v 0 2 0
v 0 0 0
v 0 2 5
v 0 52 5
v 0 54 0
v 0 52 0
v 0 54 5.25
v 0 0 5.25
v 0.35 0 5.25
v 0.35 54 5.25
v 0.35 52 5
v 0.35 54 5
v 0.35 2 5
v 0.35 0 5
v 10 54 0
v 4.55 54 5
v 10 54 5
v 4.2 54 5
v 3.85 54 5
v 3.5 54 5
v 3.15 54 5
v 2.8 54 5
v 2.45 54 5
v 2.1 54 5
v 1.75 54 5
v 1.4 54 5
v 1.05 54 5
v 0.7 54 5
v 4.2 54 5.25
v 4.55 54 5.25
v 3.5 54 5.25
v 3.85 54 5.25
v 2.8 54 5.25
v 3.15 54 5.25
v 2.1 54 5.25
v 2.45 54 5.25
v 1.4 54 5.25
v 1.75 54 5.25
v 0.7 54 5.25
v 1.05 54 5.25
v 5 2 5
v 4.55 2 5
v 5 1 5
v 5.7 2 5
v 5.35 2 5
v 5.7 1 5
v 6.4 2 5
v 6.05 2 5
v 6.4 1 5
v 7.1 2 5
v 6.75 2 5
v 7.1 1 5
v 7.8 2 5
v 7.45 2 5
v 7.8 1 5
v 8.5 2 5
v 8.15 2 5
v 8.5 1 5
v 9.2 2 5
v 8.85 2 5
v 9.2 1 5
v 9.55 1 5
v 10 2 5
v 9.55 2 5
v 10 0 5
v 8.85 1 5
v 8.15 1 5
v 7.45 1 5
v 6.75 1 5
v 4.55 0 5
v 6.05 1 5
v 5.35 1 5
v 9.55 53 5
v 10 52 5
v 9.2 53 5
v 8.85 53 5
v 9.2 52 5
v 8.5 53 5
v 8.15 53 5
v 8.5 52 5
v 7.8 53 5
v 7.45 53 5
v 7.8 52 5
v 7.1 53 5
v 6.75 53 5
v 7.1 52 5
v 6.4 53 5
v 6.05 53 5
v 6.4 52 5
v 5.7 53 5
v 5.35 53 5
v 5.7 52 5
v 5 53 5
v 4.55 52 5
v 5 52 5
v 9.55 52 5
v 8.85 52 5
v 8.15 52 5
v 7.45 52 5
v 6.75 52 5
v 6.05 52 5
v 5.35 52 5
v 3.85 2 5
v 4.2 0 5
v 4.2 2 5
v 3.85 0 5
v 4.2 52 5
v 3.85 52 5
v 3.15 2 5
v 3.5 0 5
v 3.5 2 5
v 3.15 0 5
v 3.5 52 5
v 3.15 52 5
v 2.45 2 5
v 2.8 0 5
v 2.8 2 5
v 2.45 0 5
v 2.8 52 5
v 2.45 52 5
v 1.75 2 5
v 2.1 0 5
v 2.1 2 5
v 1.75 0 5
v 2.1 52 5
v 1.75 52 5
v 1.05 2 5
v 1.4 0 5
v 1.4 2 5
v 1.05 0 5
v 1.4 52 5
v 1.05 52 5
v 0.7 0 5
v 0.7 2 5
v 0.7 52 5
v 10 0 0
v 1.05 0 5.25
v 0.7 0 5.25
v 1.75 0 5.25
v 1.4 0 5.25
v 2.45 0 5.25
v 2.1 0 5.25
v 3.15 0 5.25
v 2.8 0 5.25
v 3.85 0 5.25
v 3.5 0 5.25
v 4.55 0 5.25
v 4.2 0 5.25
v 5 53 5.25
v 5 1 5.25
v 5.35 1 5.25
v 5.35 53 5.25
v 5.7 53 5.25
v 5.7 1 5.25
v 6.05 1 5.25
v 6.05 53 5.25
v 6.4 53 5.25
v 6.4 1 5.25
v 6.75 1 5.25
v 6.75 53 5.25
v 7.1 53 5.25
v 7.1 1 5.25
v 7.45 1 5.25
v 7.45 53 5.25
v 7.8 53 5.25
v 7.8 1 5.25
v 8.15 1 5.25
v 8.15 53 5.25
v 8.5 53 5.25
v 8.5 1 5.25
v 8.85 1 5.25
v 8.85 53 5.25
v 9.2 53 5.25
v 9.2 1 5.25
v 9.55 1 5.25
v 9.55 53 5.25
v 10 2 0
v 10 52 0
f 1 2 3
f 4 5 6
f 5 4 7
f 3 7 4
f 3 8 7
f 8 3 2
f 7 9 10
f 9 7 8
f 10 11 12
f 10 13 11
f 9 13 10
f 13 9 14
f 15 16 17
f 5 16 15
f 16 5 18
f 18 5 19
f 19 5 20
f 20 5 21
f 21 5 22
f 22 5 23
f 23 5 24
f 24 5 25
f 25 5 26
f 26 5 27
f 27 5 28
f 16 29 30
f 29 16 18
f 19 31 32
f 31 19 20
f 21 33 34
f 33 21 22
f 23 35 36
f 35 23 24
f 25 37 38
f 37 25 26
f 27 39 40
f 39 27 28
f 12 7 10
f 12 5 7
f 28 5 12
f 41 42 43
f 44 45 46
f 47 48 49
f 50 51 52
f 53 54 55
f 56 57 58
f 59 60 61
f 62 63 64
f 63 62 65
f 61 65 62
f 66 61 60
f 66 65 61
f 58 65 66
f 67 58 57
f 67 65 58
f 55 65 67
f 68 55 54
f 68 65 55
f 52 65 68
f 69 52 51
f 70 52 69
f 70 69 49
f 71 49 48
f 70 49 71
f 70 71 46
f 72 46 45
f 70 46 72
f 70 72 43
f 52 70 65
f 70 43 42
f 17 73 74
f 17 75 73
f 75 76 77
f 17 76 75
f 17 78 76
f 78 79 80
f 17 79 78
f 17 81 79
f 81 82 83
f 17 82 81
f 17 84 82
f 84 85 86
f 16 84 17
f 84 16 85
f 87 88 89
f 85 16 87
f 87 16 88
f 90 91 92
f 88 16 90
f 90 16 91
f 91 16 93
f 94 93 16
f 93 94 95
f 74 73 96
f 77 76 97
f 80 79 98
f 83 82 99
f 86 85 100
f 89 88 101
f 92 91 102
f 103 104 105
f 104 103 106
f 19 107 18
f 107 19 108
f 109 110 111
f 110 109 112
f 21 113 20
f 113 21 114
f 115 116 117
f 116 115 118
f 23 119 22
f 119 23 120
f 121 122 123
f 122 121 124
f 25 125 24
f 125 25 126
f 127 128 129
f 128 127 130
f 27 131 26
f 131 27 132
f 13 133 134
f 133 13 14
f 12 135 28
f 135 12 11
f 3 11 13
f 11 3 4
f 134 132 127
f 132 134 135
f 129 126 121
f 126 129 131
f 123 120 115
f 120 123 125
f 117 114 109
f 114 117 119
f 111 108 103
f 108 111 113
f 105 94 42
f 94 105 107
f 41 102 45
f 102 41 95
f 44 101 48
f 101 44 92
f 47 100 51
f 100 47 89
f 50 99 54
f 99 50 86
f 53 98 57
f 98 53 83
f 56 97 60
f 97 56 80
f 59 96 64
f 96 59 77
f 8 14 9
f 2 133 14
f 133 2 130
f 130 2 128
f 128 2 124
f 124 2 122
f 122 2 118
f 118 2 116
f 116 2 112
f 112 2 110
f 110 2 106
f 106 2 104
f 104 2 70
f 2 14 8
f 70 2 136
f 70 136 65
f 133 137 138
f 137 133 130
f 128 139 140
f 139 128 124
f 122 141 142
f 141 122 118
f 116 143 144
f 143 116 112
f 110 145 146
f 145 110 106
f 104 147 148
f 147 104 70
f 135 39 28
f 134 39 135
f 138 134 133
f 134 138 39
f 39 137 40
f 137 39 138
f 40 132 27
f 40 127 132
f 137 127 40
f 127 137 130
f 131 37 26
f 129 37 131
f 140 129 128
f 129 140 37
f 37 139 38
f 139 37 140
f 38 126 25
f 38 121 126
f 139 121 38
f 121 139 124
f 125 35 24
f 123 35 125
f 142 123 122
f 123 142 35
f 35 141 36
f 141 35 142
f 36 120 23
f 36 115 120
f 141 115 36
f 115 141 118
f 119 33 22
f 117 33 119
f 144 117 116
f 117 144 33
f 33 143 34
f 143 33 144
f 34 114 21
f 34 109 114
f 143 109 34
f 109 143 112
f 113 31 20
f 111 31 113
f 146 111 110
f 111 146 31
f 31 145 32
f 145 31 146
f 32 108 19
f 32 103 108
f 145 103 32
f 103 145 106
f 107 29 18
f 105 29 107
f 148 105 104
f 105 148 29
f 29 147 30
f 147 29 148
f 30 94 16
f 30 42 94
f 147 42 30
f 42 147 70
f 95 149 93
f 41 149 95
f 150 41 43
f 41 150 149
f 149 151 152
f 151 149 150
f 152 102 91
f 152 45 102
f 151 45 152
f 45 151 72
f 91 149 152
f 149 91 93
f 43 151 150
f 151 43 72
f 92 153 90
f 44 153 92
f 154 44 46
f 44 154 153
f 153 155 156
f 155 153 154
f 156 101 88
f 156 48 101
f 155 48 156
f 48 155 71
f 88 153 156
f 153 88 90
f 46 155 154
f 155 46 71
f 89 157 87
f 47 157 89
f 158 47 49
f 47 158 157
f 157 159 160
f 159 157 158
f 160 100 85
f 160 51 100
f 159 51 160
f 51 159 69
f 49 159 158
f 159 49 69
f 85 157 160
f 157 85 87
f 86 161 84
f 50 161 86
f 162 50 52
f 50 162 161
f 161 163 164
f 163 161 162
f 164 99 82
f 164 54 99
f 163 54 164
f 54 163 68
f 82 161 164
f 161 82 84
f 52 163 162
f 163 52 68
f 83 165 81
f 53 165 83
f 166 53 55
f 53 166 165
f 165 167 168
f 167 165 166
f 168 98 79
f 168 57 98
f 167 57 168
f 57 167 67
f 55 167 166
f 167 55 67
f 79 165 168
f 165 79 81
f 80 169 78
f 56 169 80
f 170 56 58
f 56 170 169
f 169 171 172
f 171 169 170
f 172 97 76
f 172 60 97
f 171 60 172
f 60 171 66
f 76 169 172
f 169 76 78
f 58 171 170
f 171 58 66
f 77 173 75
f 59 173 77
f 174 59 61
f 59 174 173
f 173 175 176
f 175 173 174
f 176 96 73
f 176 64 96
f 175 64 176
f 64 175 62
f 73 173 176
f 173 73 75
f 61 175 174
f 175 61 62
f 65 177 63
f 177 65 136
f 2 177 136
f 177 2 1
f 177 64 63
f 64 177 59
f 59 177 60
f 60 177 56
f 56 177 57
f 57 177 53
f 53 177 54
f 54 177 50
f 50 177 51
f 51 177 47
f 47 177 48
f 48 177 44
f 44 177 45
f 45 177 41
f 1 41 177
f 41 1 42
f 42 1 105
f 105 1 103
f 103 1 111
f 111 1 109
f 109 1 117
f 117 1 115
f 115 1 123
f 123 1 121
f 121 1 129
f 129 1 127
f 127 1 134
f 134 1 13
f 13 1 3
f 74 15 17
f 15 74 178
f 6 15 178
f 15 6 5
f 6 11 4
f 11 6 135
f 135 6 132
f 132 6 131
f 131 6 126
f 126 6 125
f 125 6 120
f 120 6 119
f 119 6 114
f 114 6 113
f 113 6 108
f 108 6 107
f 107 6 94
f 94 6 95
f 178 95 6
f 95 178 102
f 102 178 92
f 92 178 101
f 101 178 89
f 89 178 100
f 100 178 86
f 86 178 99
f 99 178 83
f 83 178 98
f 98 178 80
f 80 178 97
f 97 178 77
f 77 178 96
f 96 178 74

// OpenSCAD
module line_grid( th, d, x=20, y=30, z=0.5 )
// Creates a grid of lines
// th is line thickness.
// d is distance between lines (center to center).
// x, y and z are dimenions of created line grid.
{
	for( p=[0:d:x-th] ) {
		translate( [p,0,0] ) cube( [th,y,z] );
	}
}



translate( [0,0,0] ) cube( [10, 2, 5] );

translate( [0,52,0] ) cube( [10, 2, 5] );

translate( [0,0,5] ) line_grid( 0.35, 0.7, 5, 2+50+2, 0.25 );
translate( [5,1,5] ) line_grid( 0.35, 0.7, 5, 1+50+1, 0.25 );
